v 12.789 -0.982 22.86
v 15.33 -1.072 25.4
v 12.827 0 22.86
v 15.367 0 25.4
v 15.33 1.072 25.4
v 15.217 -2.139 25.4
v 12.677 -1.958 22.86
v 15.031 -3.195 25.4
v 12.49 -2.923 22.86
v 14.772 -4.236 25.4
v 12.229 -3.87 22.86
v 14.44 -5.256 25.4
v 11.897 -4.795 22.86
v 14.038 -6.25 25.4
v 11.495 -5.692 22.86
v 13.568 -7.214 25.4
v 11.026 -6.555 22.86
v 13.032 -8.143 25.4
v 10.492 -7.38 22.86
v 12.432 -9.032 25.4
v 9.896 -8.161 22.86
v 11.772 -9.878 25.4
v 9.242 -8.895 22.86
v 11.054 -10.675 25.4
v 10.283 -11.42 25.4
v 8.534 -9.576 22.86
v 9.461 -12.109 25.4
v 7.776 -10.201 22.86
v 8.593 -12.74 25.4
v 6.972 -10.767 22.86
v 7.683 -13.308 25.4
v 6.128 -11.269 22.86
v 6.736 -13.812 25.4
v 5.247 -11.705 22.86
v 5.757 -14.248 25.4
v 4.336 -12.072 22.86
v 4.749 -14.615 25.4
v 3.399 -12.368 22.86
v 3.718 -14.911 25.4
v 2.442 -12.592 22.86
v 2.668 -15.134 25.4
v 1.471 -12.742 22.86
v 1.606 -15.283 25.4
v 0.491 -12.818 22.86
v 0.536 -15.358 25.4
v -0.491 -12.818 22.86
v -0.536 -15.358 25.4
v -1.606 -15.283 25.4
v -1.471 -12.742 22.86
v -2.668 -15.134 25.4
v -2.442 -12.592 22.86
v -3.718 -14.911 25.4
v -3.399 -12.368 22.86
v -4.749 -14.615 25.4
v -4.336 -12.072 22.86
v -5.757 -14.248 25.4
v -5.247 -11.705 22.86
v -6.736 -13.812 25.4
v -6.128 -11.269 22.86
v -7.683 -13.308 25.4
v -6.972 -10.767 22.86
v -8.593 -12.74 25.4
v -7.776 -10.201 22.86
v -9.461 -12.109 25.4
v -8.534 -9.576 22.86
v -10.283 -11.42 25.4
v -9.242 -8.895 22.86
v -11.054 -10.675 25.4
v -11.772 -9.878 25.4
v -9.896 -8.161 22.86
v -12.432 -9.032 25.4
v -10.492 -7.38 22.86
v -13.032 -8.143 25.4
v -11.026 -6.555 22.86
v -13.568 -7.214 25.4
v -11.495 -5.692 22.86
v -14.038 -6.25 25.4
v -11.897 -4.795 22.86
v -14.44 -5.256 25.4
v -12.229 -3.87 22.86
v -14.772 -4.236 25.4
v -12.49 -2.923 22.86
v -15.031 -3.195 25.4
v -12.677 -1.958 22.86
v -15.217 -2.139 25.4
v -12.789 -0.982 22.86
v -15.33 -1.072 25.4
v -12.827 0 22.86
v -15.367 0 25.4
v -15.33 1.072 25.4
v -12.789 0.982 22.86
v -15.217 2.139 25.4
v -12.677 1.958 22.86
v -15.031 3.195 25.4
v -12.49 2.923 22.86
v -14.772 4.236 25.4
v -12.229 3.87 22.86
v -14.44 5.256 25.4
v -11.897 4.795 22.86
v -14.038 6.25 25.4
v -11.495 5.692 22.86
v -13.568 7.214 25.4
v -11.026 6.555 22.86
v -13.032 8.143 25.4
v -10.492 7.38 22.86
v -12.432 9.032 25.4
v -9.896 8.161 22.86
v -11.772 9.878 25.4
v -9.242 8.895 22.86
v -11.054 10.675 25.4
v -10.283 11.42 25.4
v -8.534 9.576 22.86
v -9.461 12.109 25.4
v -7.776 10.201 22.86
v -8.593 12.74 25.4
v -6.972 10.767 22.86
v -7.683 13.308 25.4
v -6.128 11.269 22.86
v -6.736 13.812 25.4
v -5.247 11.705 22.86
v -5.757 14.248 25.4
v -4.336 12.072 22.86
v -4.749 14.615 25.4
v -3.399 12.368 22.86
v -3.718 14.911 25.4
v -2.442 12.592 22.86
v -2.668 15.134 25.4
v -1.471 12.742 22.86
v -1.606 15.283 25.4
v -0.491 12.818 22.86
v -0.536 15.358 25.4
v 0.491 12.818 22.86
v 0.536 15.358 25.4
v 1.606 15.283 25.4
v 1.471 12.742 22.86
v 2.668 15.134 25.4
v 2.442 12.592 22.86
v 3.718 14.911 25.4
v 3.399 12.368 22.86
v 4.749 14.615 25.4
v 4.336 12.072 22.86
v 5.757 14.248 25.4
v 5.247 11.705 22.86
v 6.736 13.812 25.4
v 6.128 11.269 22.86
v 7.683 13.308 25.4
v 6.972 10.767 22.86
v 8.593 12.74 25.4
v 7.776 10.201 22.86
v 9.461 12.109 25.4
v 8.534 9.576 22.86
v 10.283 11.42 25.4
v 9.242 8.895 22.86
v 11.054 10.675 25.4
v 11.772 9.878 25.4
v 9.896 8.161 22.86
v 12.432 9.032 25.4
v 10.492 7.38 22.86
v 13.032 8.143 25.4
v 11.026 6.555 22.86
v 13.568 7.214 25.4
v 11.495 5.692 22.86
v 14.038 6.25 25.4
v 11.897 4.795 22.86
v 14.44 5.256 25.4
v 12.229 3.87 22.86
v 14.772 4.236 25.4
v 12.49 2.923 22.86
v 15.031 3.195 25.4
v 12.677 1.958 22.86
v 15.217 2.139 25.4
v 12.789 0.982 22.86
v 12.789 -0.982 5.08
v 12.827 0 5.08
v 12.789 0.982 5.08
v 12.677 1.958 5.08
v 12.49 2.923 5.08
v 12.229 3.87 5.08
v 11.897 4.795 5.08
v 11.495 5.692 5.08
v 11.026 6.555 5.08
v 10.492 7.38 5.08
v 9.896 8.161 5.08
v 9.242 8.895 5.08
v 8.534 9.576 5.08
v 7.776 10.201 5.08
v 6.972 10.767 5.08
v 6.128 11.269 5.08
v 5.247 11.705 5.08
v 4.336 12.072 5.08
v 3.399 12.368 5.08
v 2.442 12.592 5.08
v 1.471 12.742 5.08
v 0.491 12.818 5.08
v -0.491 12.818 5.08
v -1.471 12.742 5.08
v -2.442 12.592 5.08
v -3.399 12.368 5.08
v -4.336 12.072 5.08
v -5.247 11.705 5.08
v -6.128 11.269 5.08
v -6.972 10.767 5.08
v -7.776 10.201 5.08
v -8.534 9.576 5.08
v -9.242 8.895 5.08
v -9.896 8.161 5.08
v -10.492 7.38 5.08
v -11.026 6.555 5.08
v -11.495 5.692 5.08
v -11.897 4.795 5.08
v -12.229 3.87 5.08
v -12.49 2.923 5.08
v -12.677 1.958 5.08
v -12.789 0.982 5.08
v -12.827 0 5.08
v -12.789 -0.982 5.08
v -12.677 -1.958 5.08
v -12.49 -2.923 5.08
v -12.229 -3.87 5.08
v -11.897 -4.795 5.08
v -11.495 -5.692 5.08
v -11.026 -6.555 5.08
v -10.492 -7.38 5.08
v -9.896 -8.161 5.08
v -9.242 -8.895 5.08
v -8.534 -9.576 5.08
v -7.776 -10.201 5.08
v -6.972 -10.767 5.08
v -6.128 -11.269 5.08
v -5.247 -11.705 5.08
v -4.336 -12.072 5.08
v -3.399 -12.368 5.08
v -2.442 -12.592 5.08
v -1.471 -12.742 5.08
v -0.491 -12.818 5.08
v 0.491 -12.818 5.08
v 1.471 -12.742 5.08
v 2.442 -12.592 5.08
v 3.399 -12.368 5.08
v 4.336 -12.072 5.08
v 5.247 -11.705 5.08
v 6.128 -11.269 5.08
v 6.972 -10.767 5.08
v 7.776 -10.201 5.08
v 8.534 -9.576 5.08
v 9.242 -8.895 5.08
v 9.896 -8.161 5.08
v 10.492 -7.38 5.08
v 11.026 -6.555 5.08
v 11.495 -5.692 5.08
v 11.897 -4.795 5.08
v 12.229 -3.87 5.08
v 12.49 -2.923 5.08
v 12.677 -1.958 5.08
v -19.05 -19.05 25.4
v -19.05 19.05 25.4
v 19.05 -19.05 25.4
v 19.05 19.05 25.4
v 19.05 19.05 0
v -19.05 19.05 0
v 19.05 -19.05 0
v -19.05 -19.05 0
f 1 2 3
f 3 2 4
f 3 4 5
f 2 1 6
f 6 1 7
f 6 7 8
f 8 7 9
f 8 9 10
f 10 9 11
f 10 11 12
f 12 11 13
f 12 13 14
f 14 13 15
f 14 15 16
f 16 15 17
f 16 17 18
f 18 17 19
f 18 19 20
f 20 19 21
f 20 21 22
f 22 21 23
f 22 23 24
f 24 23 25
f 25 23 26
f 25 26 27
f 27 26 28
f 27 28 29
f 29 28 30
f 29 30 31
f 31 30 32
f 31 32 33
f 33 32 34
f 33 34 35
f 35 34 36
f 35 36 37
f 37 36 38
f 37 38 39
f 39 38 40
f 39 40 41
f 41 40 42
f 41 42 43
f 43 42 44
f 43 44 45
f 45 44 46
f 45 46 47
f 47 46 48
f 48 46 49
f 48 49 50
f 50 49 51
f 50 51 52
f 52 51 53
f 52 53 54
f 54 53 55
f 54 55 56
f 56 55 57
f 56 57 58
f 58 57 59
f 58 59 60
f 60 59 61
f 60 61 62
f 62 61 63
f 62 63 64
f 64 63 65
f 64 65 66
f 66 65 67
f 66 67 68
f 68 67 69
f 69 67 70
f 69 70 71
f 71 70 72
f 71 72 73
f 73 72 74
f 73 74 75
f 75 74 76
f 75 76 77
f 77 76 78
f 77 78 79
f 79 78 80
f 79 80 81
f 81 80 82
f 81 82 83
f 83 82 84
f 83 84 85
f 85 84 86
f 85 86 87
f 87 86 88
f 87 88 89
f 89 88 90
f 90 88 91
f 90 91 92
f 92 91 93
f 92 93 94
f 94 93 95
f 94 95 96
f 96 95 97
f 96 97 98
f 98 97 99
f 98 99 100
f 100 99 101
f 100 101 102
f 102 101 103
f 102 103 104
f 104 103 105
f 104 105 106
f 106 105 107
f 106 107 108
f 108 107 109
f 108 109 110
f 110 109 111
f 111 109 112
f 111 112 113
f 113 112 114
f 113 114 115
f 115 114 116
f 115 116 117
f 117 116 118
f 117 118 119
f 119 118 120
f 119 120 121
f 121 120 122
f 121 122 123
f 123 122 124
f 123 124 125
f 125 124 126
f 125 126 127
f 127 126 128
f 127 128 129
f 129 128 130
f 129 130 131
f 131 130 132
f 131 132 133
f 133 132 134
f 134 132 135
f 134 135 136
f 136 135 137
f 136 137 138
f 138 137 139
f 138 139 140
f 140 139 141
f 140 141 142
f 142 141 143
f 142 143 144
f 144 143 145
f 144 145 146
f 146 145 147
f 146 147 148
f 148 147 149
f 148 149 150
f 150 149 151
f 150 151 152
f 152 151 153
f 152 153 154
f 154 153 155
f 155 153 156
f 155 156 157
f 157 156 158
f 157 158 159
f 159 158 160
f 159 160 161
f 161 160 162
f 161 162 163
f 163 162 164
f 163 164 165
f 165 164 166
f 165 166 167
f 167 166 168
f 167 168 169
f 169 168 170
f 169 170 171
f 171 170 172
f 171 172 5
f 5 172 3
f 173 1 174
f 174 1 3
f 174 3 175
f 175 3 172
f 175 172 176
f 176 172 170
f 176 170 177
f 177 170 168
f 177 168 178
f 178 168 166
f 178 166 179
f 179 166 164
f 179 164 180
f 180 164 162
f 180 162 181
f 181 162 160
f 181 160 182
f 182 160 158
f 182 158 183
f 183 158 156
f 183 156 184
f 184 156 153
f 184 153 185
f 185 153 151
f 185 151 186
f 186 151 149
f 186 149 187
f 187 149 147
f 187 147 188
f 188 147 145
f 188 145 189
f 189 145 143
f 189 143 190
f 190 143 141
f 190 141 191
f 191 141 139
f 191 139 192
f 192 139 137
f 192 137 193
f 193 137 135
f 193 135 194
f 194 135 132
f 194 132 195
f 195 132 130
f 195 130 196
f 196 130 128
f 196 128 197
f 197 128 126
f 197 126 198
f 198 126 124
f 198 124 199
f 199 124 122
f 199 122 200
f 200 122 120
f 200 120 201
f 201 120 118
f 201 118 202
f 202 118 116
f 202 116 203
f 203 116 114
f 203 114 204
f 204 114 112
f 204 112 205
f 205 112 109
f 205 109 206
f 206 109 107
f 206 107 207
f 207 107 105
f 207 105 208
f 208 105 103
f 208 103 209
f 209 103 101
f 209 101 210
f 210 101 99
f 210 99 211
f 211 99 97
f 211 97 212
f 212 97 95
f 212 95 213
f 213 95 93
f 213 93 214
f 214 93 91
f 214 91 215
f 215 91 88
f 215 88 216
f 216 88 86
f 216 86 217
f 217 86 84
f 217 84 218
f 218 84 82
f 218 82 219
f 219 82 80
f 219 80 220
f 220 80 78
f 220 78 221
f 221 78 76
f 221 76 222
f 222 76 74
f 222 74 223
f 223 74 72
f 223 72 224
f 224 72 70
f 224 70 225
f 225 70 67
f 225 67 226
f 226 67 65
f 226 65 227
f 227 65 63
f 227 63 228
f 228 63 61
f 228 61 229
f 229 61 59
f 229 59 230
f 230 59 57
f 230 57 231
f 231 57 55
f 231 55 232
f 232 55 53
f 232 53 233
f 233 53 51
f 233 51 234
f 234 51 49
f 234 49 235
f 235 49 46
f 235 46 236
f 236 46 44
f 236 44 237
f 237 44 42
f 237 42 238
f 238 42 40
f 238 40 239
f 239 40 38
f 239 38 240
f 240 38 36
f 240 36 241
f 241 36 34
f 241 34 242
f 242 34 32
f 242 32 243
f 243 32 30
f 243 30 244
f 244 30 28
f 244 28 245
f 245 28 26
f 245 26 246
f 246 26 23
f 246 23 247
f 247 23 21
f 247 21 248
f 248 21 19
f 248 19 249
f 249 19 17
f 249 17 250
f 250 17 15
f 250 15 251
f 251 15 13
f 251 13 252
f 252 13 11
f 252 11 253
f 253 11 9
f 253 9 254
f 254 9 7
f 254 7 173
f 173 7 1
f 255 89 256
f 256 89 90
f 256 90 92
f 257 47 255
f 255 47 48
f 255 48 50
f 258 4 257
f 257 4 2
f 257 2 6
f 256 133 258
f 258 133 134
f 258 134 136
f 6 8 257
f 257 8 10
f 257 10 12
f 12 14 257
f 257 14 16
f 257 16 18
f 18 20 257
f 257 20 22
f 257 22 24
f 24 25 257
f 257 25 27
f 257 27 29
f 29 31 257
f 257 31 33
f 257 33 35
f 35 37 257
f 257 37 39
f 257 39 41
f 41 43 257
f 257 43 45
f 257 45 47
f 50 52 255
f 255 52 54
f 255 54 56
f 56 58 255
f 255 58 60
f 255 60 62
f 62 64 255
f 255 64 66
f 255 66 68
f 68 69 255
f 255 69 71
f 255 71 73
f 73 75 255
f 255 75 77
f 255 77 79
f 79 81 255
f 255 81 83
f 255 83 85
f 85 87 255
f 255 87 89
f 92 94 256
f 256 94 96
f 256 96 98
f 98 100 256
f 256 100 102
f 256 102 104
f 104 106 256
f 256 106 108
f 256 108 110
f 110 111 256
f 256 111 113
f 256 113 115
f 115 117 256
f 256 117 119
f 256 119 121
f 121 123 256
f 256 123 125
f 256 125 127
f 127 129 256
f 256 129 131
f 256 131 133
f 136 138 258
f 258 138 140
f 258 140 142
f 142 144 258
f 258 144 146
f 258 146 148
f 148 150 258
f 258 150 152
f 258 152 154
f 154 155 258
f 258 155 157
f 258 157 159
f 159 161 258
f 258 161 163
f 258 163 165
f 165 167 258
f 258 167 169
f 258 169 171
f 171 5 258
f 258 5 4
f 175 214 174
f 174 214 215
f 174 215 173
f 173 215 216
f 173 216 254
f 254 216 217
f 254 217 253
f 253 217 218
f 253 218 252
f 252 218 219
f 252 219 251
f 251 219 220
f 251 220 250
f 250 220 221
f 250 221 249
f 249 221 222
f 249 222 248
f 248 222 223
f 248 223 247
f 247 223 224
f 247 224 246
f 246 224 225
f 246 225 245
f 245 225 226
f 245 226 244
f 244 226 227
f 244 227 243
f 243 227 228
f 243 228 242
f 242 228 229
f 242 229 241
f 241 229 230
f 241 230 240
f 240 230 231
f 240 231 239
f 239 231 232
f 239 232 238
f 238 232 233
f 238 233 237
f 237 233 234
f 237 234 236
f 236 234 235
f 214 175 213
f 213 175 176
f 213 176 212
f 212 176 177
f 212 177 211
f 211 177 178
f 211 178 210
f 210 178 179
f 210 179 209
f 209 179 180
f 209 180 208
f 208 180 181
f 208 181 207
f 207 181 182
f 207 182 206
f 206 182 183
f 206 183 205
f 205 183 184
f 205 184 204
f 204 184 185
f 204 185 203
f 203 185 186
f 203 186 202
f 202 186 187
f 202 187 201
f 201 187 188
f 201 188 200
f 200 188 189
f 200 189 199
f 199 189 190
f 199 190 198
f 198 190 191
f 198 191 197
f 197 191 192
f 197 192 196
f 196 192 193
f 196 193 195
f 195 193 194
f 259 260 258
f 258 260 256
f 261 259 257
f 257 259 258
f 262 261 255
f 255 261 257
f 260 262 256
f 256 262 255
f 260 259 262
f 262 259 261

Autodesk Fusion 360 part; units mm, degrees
sketch "Sketch1" plane through (0, 0, 0) normal (0, 0, 1) x (1, 0, 0)
  line L0 (-19.05, -19.05) -> (19.05, -19.05)
  line L1 (19.05, -19.05) -> (19.05, 19.05)
  line L2 (19.05, 19.05) -> (-19.05, 19.05)
  line L3 (-19.05, 19.05) -> (-19.05, -19.05)
  line L4 (0, 1.75) -> (0, 22.5)
  line L5 (1.75, 0) -> (22.5, 0)
  dimension "d1" = 38.1
  dimension "d2" = 38.1
extrude "Extrude1" add sketch "Sketch1" along normal blind 25.4
sketch "Sketch2" plane through (0, 0, 25.4) normal (0, 0, 1) x (-1, 0, 0)
  line L0 (19.05, -19.05) -> (19.05, 19.05)
  line L1 (19.05, 19.05) -> (-19.05, 19.05)
  line L2 (-19.05, 19.05) -> (-19.05, -19.05)
  line L3 (-19.05, -19.05) -> (19.05, -19.05)
  circle A0 centre (0, 0) radius 12.827
  dimension "d5" = 25.654
extrude "Extrude2" cut sketch "Sketch2" against normal blind 20.32 contours A0
chamfer "Chamfer2" distance 2.54 angle 45 1 edges at (11.959, -4.6384, 25.4)
